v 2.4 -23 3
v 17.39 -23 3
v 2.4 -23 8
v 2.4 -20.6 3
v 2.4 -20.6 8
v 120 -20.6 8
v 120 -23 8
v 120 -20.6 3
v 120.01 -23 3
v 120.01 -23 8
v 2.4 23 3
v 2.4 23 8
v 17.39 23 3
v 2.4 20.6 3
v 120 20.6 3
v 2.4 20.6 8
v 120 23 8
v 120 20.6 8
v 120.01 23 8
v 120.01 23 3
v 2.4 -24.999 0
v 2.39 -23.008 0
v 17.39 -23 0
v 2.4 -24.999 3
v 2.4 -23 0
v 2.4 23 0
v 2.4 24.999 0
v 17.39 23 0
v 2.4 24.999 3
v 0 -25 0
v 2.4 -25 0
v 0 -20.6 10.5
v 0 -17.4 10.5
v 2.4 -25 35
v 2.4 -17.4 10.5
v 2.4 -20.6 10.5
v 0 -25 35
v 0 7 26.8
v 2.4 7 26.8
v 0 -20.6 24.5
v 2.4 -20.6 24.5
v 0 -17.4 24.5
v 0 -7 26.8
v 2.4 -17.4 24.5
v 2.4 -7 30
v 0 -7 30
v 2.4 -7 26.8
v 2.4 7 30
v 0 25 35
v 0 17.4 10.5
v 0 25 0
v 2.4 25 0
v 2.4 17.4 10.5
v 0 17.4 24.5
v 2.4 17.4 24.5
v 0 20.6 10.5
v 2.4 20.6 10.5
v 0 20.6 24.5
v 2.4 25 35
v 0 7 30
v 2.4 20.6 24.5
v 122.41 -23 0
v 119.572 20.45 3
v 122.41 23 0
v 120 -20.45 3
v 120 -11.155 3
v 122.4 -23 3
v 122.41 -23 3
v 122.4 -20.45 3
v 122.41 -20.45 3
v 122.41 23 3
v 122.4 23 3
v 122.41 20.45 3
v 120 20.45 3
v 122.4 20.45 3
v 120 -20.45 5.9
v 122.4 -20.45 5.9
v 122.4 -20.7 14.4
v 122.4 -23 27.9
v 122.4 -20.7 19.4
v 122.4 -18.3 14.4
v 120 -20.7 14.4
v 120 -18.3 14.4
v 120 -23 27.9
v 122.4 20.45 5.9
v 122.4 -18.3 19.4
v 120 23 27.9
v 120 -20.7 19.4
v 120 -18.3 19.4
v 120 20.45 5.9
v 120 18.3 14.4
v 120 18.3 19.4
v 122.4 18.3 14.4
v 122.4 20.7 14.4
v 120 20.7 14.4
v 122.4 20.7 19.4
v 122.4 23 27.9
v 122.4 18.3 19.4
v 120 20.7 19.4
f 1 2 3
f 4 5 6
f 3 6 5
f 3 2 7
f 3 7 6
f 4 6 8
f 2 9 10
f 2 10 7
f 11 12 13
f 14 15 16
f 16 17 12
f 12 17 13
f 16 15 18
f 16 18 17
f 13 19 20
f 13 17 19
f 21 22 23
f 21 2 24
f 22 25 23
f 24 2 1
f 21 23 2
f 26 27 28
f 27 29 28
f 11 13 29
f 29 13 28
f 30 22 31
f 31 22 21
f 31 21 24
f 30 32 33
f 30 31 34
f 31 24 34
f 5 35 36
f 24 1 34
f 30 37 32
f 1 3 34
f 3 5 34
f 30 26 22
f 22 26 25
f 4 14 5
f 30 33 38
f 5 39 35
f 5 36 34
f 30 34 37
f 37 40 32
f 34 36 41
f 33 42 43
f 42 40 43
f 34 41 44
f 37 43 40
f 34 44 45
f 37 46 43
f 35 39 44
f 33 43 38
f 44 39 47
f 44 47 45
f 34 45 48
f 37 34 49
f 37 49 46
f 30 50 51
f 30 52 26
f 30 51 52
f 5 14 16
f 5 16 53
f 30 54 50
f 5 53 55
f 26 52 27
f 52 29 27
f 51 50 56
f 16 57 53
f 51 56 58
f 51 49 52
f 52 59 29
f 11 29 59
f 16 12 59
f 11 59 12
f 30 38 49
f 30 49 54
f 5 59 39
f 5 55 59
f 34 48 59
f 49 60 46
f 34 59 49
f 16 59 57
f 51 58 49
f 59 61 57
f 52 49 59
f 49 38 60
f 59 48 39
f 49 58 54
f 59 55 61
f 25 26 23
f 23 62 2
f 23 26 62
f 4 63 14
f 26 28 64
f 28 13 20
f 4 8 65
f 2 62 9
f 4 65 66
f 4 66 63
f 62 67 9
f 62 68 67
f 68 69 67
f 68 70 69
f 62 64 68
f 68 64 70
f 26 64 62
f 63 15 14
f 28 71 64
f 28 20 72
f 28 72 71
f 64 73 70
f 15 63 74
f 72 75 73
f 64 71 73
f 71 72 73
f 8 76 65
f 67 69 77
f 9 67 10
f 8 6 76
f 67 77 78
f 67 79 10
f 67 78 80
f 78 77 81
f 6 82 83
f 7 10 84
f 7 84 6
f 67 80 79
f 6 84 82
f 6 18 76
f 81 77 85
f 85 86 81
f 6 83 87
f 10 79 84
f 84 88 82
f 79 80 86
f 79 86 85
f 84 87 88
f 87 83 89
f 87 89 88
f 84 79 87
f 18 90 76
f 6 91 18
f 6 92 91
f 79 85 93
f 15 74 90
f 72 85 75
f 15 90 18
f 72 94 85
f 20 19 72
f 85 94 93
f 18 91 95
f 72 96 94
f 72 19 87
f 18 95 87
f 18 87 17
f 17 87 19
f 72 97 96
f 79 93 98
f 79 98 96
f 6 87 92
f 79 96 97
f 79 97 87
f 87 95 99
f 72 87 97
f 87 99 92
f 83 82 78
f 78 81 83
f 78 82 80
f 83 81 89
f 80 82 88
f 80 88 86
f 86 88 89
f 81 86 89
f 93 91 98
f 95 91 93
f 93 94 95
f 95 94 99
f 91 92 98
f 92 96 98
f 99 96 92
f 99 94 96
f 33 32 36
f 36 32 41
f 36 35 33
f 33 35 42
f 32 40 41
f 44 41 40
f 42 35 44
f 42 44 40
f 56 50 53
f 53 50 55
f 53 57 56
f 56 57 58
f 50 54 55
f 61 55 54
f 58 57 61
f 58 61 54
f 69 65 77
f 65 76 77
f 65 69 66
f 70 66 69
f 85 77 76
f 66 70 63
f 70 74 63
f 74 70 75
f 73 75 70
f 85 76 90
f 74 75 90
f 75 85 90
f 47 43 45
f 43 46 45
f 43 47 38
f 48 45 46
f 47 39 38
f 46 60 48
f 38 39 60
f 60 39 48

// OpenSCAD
// ============================================================
//  Logitech C270 mast mount  (v4: thin, prints lying flat)
//  ------------------------------------------------------------
//  Loads already in print orientation. No supports.
//  X = up the mast, Y = side to side, Z = "up" on the printer.
//
//  S-shape: base plate at one end, camera plate at the other, thin
//  mast between them with a rib along each edge.
//  The camera foot rests on the camera plate. Its fold-down flap
//  drops THROUGH a slot cut in the camera plate and lies flat
//  against the mast, between the ribs. That locks it in every
//  direction except straight up; a zip tie over the foot does that.
//  Camera lens faces +Z (the direction the plates stick out).
// ============================================================

/* [Measured from your C270 clip flap] */
flap_w        = 40.3;
flap_h        = 18.9;
flap_t        = 2.3;
fit_clearance = 0.6;

/* [Sizes] */
mast_h        = 120;   // base plate top -> camera plate top
mast_w        = 46;    // mast width; flap must fit between the ribs
mast_t        = 3;     // mast thickness
rib_h         = 5;     // stiffening ribs along both edges (0 = none)
rib_t         = 2.4;
base_w        = 50;    // base plate, side to side
base_d        = 35;    // base plate, front to back
base_t        = 2.4;
gusset        = 15;    // in-plane fins at the base
cam_plate_t   = 2.4;   // camera plate thickness
cam_front     = 22;    // flat area for the foot, in front of the flap slot
tie_w         = 5;  tie_t = 2.4;
strap_w       = 14; strap_t = 3.2;

/* [Hidden] */
eps = 0.01;
slot_w = flap_w + fit_clearance;
slot_t = flap_t + fit_clearance;
cam_w  = mast_w;
cam_d  = mast_t + slot_t + cam_front;  // camera plate depth (front to back)
x_top  = base_t + mast_h;            // camera plate top surface

difference() {
    union() {
        // base plate (stands on edge during print)
        translate([0, -base_w/2, 0]) cube([base_t, base_w, base_d]);
        // mast plate + ribs
        translate([base_t - eps, -mast_w/2, 0]) cube([mast_h + 2*eps, mast_w, mast_t]);
        if (rib_h > 0) for (y = [-mast_w/2, mast_w/2 - rib_t])
            translate([base_t - eps, y, 0]) cube([mast_h - cam_plate_t + 2*eps, rib_t, mast_t + rib_h]);
        // in-plane gussets at the base
        for (s = [-1, 1]) translate([base_t - eps, 0, 0]) linear_extrude(mast_t)
            polygon([[0, s*mast_w/2], [gusset, s*mast_w/2], [0, s*base_w/2]]);
        // camera plate (stands on edge), extends forward (+Z) from the mast
        translate([x_top - cam_plate_t, -cam_w/2, 0]) cube([cam_plate_t, cam_w, cam_d]);
    }
    // flap slot straight through the camera plate, just in front of the mast plate
    translate([x_top - cam_plate_t - 1, -slot_w/2, mast_t])
        cube([cam_plate_t + 2, slot_w, slot_t]);
    // zip-tie holes through the camera plate, either side of the foot
    for (y = [-1, 1])
        translate([x_top - cam_plate_t - 1, y*(cam_w/2 - 3.5) - tie_t/2, mast_t + slot_t + cam_front/2 - tie_w/2])
            cube([cam_plate_t + 2, tie_t, tie_w]);
    // strap slots in the base
    for (y = [-1, 1])
        translate([-1, y*(base_w/2 - 6) - strap_t/2, base_d/2 - strap_w/2]) cube([base_t + 2, strap_t, strap_w]);
    translate([-1, -strap_w/2, base_d - 5 - strap_t]) cube([base_t + 2, strap_w, strap_t]);
}
